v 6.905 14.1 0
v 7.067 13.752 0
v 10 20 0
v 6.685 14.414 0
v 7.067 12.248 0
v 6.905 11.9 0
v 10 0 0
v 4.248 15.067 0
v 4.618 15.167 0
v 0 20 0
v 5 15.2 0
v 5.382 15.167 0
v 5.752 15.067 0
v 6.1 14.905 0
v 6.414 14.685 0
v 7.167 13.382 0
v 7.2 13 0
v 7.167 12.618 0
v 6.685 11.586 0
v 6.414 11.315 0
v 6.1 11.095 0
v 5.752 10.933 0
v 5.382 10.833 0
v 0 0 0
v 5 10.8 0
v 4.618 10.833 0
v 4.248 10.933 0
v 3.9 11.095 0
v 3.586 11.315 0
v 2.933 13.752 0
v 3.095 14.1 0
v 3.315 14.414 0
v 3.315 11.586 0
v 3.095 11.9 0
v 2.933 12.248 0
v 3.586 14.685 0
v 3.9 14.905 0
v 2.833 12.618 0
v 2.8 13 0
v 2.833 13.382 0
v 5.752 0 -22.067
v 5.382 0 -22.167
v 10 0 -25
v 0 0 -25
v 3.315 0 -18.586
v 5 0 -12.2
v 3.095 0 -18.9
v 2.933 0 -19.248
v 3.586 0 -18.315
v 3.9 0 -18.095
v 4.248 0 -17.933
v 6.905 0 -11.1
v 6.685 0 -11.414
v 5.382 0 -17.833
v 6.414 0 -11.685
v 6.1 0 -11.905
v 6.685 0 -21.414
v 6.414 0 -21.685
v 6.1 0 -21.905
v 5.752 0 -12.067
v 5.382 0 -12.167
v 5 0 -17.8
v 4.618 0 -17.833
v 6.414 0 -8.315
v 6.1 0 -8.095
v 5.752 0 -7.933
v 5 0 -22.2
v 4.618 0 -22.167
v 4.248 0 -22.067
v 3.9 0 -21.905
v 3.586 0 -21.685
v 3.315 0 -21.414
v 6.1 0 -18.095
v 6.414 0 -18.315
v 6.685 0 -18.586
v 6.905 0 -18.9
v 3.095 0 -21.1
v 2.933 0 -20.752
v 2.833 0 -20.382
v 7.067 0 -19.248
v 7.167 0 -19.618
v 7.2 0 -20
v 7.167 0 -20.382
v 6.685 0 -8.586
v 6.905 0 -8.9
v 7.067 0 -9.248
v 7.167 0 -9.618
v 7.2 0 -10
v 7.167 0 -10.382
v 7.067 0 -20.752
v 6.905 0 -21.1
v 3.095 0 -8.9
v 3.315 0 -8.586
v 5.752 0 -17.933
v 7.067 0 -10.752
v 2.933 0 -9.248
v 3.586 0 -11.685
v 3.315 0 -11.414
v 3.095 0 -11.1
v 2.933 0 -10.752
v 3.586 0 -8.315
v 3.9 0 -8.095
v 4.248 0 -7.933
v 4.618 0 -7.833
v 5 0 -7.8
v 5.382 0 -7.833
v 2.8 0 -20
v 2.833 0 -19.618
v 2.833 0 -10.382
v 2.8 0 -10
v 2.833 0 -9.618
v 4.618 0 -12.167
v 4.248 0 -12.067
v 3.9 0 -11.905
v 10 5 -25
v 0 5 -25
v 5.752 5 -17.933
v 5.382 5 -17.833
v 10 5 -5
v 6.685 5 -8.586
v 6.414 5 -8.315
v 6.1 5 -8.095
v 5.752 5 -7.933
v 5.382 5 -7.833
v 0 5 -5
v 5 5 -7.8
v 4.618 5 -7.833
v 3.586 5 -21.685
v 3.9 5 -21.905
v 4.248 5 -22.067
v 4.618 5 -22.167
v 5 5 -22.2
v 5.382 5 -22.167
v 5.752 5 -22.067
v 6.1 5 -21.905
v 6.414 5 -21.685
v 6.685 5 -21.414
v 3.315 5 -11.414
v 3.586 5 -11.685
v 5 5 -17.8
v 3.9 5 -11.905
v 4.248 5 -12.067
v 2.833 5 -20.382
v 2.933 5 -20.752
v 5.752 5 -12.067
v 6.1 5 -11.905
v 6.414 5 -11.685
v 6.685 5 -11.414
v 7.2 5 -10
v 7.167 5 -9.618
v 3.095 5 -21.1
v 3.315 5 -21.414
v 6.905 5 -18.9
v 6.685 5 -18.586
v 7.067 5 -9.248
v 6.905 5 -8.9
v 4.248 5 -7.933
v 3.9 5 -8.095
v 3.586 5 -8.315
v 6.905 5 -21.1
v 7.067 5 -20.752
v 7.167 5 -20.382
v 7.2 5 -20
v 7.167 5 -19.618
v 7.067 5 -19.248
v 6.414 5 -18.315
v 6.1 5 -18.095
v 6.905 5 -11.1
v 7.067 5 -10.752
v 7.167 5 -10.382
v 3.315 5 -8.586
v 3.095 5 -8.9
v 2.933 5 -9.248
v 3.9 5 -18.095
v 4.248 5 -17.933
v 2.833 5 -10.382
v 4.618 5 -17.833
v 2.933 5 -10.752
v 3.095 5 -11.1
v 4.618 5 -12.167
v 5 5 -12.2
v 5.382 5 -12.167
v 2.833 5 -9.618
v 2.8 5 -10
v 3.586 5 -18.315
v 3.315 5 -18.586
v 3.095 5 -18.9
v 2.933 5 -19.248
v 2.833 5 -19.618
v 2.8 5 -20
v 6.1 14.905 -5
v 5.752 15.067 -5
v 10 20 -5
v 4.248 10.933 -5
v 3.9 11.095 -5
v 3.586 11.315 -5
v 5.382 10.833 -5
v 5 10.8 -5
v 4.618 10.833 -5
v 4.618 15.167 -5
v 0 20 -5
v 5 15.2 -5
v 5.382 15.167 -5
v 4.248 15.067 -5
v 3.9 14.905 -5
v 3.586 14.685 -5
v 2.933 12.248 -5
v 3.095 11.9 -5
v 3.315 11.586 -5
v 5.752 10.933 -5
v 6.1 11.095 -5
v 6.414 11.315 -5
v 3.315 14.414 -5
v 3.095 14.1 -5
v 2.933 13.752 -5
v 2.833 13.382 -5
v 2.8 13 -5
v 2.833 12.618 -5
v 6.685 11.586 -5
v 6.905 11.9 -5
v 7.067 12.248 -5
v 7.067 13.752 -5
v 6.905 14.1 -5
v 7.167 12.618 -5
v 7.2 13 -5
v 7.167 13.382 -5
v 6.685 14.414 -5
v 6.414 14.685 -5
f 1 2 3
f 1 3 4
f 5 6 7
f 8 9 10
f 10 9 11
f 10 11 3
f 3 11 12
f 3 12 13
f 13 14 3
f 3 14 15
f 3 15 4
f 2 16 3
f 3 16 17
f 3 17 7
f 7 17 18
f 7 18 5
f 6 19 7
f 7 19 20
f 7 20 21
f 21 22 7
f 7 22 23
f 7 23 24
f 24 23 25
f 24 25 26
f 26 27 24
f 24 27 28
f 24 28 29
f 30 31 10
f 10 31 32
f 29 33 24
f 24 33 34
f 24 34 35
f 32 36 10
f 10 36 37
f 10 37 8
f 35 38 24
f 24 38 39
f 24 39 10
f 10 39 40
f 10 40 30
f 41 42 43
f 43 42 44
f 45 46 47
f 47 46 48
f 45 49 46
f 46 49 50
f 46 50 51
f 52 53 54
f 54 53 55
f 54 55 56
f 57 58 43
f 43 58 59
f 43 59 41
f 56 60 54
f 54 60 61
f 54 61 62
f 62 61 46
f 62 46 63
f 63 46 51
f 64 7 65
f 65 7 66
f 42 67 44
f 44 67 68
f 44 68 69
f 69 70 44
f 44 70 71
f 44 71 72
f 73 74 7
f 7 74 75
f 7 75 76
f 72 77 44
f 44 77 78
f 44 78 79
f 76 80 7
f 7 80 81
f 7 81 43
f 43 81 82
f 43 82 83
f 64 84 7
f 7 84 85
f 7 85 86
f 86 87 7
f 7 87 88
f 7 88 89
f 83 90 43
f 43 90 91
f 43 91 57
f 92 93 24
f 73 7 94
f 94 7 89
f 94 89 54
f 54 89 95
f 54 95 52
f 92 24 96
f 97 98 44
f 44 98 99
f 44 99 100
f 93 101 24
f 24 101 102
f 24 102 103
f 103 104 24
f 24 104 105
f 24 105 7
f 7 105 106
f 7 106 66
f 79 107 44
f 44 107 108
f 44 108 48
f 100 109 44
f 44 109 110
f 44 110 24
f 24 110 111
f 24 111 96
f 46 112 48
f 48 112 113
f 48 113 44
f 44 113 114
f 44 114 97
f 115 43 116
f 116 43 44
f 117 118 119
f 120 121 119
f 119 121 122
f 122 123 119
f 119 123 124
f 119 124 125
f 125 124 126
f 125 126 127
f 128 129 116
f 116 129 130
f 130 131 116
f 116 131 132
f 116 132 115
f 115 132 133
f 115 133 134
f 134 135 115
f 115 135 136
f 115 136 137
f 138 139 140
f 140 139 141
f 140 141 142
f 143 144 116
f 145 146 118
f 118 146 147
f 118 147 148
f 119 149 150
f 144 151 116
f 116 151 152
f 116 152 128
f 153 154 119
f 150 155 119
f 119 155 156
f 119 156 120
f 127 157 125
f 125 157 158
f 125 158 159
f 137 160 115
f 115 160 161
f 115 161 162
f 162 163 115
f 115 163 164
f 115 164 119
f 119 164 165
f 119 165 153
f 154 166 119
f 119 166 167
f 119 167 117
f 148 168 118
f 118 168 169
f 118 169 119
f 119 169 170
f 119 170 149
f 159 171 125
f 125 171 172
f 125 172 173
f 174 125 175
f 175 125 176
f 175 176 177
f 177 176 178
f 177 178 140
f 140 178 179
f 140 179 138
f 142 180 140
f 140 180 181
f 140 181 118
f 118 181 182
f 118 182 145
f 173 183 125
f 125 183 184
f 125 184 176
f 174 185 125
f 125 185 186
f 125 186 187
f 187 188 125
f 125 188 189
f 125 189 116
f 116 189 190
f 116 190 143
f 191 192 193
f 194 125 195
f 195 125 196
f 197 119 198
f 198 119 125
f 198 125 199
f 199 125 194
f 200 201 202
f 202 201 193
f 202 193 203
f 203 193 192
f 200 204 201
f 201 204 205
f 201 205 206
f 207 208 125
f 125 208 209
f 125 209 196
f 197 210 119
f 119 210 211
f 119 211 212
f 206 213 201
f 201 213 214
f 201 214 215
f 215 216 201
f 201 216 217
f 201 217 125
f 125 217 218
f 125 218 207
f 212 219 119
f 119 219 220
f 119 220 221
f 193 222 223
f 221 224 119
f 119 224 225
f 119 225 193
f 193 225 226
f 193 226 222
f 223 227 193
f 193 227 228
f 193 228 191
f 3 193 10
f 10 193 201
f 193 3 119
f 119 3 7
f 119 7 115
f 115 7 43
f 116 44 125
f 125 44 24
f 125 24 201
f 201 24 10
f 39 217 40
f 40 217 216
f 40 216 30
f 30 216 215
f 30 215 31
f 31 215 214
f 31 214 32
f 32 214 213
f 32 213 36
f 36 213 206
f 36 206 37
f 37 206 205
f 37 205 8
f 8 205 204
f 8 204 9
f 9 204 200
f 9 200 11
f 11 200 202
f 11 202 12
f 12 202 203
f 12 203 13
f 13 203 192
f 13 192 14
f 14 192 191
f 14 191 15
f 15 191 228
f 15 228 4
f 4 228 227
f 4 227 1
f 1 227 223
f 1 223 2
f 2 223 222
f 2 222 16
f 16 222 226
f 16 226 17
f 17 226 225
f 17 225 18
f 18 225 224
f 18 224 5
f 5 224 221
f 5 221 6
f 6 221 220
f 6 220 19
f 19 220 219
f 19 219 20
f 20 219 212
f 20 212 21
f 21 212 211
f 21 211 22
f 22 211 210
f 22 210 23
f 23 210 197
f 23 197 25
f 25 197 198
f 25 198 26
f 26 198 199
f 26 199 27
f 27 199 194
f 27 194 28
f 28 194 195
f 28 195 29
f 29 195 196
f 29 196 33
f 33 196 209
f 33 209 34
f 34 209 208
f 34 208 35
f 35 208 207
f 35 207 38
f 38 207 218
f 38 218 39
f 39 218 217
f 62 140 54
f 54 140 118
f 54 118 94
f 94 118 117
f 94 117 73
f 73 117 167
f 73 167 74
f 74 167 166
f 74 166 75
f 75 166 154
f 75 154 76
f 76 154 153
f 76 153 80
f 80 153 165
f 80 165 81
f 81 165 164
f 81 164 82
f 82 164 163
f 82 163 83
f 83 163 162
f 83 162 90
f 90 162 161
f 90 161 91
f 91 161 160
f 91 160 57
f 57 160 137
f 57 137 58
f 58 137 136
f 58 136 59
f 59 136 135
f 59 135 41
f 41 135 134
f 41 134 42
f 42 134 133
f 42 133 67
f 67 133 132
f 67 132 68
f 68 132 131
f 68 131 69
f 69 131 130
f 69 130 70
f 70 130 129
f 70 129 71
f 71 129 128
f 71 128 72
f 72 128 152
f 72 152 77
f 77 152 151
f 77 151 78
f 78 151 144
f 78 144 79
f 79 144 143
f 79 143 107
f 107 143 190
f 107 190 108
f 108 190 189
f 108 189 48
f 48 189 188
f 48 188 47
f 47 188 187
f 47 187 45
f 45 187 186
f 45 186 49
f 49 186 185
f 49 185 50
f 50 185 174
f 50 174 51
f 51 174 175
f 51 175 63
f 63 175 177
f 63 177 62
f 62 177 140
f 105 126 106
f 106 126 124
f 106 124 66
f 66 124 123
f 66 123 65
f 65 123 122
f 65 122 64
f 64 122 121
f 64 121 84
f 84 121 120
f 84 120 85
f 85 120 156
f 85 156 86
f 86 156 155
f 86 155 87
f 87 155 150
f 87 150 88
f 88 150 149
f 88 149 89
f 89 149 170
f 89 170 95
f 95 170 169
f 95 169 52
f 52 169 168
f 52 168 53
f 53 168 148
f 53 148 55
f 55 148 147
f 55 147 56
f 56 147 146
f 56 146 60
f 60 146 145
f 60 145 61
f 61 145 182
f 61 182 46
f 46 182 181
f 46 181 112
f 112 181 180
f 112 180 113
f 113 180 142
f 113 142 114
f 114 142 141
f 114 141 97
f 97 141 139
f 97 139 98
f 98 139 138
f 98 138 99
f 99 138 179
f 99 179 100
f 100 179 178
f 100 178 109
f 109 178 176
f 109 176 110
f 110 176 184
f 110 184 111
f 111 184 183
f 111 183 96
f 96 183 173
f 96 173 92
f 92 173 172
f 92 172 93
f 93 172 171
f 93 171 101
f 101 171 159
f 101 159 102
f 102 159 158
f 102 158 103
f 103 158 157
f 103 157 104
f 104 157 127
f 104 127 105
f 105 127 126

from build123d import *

# Parameters (mm, degrees)
SKETCH1_W           = 5
SKETCH1_H           = 15
SKETCH1_H_2         = 5
SKETCH1_W_2         = 20
BOSS_EXTRUDE1_DEPTH = 10
SKETCH2_R           = 2.2
CUT_EXTRUDE1_DEPTH  = 10
SKETCH3_R           = 2.2
CUT_EXTRUDE2_DEPTH  = 10


with BuildPart() as part:
    # Sketch1 → Boss-Extrude1 (new body)
    with BuildSketch(Plane(origin=(0, 0, 0), x_dir=(0, 0, -1), z_dir=(1, 0, 0))):
        with Locations((2.5, 12.5)):
            Rectangle(SKETCH1_W, SKETCH1_H)
        with Locations((2.5, 2.5)):
            Rectangle(SKETCH1_W, SKETCH1_H_2)
        with Locations((15, 2.5)):
            Rectangle(SKETCH1_W_2, SKETCH1_H_2)
    extrude(amount=BOSS_EXTRUDE1_DEPTH)

    # Sketch2 → Cut-Extrude1 (cut)
    with BuildSketch(Plane(origin=(0, 0, -5), x_dir=(-1, 0, 0), z_dir=(0, 0, -1))):
        with Locations((-5, 13)):
            Circle(SKETCH2_R)
    extrude(amount=-CUT_EXTRUDE1_DEPTH, mode=Mode.SUBTRACT)

    # Sketch3 → Cut-Extrude2 (cut)
    with BuildSketch(Plane(origin=(0, 5, 0), x_dir=(1, 0, 0), z_dir=(0, 1, 0))):
        with Locations(Location((5, 20, 0), (0, 0, 270))):
            Circle(SKETCH3_R)
        with Locations(Location((5, 10, 0), (0, 0, 270))):
            Circle(SKETCH3_R)
    extrude(amount=-CUT_EXTRUDE2_DEPTH, mode=Mode.SUBTRACT)


solid = part.part
